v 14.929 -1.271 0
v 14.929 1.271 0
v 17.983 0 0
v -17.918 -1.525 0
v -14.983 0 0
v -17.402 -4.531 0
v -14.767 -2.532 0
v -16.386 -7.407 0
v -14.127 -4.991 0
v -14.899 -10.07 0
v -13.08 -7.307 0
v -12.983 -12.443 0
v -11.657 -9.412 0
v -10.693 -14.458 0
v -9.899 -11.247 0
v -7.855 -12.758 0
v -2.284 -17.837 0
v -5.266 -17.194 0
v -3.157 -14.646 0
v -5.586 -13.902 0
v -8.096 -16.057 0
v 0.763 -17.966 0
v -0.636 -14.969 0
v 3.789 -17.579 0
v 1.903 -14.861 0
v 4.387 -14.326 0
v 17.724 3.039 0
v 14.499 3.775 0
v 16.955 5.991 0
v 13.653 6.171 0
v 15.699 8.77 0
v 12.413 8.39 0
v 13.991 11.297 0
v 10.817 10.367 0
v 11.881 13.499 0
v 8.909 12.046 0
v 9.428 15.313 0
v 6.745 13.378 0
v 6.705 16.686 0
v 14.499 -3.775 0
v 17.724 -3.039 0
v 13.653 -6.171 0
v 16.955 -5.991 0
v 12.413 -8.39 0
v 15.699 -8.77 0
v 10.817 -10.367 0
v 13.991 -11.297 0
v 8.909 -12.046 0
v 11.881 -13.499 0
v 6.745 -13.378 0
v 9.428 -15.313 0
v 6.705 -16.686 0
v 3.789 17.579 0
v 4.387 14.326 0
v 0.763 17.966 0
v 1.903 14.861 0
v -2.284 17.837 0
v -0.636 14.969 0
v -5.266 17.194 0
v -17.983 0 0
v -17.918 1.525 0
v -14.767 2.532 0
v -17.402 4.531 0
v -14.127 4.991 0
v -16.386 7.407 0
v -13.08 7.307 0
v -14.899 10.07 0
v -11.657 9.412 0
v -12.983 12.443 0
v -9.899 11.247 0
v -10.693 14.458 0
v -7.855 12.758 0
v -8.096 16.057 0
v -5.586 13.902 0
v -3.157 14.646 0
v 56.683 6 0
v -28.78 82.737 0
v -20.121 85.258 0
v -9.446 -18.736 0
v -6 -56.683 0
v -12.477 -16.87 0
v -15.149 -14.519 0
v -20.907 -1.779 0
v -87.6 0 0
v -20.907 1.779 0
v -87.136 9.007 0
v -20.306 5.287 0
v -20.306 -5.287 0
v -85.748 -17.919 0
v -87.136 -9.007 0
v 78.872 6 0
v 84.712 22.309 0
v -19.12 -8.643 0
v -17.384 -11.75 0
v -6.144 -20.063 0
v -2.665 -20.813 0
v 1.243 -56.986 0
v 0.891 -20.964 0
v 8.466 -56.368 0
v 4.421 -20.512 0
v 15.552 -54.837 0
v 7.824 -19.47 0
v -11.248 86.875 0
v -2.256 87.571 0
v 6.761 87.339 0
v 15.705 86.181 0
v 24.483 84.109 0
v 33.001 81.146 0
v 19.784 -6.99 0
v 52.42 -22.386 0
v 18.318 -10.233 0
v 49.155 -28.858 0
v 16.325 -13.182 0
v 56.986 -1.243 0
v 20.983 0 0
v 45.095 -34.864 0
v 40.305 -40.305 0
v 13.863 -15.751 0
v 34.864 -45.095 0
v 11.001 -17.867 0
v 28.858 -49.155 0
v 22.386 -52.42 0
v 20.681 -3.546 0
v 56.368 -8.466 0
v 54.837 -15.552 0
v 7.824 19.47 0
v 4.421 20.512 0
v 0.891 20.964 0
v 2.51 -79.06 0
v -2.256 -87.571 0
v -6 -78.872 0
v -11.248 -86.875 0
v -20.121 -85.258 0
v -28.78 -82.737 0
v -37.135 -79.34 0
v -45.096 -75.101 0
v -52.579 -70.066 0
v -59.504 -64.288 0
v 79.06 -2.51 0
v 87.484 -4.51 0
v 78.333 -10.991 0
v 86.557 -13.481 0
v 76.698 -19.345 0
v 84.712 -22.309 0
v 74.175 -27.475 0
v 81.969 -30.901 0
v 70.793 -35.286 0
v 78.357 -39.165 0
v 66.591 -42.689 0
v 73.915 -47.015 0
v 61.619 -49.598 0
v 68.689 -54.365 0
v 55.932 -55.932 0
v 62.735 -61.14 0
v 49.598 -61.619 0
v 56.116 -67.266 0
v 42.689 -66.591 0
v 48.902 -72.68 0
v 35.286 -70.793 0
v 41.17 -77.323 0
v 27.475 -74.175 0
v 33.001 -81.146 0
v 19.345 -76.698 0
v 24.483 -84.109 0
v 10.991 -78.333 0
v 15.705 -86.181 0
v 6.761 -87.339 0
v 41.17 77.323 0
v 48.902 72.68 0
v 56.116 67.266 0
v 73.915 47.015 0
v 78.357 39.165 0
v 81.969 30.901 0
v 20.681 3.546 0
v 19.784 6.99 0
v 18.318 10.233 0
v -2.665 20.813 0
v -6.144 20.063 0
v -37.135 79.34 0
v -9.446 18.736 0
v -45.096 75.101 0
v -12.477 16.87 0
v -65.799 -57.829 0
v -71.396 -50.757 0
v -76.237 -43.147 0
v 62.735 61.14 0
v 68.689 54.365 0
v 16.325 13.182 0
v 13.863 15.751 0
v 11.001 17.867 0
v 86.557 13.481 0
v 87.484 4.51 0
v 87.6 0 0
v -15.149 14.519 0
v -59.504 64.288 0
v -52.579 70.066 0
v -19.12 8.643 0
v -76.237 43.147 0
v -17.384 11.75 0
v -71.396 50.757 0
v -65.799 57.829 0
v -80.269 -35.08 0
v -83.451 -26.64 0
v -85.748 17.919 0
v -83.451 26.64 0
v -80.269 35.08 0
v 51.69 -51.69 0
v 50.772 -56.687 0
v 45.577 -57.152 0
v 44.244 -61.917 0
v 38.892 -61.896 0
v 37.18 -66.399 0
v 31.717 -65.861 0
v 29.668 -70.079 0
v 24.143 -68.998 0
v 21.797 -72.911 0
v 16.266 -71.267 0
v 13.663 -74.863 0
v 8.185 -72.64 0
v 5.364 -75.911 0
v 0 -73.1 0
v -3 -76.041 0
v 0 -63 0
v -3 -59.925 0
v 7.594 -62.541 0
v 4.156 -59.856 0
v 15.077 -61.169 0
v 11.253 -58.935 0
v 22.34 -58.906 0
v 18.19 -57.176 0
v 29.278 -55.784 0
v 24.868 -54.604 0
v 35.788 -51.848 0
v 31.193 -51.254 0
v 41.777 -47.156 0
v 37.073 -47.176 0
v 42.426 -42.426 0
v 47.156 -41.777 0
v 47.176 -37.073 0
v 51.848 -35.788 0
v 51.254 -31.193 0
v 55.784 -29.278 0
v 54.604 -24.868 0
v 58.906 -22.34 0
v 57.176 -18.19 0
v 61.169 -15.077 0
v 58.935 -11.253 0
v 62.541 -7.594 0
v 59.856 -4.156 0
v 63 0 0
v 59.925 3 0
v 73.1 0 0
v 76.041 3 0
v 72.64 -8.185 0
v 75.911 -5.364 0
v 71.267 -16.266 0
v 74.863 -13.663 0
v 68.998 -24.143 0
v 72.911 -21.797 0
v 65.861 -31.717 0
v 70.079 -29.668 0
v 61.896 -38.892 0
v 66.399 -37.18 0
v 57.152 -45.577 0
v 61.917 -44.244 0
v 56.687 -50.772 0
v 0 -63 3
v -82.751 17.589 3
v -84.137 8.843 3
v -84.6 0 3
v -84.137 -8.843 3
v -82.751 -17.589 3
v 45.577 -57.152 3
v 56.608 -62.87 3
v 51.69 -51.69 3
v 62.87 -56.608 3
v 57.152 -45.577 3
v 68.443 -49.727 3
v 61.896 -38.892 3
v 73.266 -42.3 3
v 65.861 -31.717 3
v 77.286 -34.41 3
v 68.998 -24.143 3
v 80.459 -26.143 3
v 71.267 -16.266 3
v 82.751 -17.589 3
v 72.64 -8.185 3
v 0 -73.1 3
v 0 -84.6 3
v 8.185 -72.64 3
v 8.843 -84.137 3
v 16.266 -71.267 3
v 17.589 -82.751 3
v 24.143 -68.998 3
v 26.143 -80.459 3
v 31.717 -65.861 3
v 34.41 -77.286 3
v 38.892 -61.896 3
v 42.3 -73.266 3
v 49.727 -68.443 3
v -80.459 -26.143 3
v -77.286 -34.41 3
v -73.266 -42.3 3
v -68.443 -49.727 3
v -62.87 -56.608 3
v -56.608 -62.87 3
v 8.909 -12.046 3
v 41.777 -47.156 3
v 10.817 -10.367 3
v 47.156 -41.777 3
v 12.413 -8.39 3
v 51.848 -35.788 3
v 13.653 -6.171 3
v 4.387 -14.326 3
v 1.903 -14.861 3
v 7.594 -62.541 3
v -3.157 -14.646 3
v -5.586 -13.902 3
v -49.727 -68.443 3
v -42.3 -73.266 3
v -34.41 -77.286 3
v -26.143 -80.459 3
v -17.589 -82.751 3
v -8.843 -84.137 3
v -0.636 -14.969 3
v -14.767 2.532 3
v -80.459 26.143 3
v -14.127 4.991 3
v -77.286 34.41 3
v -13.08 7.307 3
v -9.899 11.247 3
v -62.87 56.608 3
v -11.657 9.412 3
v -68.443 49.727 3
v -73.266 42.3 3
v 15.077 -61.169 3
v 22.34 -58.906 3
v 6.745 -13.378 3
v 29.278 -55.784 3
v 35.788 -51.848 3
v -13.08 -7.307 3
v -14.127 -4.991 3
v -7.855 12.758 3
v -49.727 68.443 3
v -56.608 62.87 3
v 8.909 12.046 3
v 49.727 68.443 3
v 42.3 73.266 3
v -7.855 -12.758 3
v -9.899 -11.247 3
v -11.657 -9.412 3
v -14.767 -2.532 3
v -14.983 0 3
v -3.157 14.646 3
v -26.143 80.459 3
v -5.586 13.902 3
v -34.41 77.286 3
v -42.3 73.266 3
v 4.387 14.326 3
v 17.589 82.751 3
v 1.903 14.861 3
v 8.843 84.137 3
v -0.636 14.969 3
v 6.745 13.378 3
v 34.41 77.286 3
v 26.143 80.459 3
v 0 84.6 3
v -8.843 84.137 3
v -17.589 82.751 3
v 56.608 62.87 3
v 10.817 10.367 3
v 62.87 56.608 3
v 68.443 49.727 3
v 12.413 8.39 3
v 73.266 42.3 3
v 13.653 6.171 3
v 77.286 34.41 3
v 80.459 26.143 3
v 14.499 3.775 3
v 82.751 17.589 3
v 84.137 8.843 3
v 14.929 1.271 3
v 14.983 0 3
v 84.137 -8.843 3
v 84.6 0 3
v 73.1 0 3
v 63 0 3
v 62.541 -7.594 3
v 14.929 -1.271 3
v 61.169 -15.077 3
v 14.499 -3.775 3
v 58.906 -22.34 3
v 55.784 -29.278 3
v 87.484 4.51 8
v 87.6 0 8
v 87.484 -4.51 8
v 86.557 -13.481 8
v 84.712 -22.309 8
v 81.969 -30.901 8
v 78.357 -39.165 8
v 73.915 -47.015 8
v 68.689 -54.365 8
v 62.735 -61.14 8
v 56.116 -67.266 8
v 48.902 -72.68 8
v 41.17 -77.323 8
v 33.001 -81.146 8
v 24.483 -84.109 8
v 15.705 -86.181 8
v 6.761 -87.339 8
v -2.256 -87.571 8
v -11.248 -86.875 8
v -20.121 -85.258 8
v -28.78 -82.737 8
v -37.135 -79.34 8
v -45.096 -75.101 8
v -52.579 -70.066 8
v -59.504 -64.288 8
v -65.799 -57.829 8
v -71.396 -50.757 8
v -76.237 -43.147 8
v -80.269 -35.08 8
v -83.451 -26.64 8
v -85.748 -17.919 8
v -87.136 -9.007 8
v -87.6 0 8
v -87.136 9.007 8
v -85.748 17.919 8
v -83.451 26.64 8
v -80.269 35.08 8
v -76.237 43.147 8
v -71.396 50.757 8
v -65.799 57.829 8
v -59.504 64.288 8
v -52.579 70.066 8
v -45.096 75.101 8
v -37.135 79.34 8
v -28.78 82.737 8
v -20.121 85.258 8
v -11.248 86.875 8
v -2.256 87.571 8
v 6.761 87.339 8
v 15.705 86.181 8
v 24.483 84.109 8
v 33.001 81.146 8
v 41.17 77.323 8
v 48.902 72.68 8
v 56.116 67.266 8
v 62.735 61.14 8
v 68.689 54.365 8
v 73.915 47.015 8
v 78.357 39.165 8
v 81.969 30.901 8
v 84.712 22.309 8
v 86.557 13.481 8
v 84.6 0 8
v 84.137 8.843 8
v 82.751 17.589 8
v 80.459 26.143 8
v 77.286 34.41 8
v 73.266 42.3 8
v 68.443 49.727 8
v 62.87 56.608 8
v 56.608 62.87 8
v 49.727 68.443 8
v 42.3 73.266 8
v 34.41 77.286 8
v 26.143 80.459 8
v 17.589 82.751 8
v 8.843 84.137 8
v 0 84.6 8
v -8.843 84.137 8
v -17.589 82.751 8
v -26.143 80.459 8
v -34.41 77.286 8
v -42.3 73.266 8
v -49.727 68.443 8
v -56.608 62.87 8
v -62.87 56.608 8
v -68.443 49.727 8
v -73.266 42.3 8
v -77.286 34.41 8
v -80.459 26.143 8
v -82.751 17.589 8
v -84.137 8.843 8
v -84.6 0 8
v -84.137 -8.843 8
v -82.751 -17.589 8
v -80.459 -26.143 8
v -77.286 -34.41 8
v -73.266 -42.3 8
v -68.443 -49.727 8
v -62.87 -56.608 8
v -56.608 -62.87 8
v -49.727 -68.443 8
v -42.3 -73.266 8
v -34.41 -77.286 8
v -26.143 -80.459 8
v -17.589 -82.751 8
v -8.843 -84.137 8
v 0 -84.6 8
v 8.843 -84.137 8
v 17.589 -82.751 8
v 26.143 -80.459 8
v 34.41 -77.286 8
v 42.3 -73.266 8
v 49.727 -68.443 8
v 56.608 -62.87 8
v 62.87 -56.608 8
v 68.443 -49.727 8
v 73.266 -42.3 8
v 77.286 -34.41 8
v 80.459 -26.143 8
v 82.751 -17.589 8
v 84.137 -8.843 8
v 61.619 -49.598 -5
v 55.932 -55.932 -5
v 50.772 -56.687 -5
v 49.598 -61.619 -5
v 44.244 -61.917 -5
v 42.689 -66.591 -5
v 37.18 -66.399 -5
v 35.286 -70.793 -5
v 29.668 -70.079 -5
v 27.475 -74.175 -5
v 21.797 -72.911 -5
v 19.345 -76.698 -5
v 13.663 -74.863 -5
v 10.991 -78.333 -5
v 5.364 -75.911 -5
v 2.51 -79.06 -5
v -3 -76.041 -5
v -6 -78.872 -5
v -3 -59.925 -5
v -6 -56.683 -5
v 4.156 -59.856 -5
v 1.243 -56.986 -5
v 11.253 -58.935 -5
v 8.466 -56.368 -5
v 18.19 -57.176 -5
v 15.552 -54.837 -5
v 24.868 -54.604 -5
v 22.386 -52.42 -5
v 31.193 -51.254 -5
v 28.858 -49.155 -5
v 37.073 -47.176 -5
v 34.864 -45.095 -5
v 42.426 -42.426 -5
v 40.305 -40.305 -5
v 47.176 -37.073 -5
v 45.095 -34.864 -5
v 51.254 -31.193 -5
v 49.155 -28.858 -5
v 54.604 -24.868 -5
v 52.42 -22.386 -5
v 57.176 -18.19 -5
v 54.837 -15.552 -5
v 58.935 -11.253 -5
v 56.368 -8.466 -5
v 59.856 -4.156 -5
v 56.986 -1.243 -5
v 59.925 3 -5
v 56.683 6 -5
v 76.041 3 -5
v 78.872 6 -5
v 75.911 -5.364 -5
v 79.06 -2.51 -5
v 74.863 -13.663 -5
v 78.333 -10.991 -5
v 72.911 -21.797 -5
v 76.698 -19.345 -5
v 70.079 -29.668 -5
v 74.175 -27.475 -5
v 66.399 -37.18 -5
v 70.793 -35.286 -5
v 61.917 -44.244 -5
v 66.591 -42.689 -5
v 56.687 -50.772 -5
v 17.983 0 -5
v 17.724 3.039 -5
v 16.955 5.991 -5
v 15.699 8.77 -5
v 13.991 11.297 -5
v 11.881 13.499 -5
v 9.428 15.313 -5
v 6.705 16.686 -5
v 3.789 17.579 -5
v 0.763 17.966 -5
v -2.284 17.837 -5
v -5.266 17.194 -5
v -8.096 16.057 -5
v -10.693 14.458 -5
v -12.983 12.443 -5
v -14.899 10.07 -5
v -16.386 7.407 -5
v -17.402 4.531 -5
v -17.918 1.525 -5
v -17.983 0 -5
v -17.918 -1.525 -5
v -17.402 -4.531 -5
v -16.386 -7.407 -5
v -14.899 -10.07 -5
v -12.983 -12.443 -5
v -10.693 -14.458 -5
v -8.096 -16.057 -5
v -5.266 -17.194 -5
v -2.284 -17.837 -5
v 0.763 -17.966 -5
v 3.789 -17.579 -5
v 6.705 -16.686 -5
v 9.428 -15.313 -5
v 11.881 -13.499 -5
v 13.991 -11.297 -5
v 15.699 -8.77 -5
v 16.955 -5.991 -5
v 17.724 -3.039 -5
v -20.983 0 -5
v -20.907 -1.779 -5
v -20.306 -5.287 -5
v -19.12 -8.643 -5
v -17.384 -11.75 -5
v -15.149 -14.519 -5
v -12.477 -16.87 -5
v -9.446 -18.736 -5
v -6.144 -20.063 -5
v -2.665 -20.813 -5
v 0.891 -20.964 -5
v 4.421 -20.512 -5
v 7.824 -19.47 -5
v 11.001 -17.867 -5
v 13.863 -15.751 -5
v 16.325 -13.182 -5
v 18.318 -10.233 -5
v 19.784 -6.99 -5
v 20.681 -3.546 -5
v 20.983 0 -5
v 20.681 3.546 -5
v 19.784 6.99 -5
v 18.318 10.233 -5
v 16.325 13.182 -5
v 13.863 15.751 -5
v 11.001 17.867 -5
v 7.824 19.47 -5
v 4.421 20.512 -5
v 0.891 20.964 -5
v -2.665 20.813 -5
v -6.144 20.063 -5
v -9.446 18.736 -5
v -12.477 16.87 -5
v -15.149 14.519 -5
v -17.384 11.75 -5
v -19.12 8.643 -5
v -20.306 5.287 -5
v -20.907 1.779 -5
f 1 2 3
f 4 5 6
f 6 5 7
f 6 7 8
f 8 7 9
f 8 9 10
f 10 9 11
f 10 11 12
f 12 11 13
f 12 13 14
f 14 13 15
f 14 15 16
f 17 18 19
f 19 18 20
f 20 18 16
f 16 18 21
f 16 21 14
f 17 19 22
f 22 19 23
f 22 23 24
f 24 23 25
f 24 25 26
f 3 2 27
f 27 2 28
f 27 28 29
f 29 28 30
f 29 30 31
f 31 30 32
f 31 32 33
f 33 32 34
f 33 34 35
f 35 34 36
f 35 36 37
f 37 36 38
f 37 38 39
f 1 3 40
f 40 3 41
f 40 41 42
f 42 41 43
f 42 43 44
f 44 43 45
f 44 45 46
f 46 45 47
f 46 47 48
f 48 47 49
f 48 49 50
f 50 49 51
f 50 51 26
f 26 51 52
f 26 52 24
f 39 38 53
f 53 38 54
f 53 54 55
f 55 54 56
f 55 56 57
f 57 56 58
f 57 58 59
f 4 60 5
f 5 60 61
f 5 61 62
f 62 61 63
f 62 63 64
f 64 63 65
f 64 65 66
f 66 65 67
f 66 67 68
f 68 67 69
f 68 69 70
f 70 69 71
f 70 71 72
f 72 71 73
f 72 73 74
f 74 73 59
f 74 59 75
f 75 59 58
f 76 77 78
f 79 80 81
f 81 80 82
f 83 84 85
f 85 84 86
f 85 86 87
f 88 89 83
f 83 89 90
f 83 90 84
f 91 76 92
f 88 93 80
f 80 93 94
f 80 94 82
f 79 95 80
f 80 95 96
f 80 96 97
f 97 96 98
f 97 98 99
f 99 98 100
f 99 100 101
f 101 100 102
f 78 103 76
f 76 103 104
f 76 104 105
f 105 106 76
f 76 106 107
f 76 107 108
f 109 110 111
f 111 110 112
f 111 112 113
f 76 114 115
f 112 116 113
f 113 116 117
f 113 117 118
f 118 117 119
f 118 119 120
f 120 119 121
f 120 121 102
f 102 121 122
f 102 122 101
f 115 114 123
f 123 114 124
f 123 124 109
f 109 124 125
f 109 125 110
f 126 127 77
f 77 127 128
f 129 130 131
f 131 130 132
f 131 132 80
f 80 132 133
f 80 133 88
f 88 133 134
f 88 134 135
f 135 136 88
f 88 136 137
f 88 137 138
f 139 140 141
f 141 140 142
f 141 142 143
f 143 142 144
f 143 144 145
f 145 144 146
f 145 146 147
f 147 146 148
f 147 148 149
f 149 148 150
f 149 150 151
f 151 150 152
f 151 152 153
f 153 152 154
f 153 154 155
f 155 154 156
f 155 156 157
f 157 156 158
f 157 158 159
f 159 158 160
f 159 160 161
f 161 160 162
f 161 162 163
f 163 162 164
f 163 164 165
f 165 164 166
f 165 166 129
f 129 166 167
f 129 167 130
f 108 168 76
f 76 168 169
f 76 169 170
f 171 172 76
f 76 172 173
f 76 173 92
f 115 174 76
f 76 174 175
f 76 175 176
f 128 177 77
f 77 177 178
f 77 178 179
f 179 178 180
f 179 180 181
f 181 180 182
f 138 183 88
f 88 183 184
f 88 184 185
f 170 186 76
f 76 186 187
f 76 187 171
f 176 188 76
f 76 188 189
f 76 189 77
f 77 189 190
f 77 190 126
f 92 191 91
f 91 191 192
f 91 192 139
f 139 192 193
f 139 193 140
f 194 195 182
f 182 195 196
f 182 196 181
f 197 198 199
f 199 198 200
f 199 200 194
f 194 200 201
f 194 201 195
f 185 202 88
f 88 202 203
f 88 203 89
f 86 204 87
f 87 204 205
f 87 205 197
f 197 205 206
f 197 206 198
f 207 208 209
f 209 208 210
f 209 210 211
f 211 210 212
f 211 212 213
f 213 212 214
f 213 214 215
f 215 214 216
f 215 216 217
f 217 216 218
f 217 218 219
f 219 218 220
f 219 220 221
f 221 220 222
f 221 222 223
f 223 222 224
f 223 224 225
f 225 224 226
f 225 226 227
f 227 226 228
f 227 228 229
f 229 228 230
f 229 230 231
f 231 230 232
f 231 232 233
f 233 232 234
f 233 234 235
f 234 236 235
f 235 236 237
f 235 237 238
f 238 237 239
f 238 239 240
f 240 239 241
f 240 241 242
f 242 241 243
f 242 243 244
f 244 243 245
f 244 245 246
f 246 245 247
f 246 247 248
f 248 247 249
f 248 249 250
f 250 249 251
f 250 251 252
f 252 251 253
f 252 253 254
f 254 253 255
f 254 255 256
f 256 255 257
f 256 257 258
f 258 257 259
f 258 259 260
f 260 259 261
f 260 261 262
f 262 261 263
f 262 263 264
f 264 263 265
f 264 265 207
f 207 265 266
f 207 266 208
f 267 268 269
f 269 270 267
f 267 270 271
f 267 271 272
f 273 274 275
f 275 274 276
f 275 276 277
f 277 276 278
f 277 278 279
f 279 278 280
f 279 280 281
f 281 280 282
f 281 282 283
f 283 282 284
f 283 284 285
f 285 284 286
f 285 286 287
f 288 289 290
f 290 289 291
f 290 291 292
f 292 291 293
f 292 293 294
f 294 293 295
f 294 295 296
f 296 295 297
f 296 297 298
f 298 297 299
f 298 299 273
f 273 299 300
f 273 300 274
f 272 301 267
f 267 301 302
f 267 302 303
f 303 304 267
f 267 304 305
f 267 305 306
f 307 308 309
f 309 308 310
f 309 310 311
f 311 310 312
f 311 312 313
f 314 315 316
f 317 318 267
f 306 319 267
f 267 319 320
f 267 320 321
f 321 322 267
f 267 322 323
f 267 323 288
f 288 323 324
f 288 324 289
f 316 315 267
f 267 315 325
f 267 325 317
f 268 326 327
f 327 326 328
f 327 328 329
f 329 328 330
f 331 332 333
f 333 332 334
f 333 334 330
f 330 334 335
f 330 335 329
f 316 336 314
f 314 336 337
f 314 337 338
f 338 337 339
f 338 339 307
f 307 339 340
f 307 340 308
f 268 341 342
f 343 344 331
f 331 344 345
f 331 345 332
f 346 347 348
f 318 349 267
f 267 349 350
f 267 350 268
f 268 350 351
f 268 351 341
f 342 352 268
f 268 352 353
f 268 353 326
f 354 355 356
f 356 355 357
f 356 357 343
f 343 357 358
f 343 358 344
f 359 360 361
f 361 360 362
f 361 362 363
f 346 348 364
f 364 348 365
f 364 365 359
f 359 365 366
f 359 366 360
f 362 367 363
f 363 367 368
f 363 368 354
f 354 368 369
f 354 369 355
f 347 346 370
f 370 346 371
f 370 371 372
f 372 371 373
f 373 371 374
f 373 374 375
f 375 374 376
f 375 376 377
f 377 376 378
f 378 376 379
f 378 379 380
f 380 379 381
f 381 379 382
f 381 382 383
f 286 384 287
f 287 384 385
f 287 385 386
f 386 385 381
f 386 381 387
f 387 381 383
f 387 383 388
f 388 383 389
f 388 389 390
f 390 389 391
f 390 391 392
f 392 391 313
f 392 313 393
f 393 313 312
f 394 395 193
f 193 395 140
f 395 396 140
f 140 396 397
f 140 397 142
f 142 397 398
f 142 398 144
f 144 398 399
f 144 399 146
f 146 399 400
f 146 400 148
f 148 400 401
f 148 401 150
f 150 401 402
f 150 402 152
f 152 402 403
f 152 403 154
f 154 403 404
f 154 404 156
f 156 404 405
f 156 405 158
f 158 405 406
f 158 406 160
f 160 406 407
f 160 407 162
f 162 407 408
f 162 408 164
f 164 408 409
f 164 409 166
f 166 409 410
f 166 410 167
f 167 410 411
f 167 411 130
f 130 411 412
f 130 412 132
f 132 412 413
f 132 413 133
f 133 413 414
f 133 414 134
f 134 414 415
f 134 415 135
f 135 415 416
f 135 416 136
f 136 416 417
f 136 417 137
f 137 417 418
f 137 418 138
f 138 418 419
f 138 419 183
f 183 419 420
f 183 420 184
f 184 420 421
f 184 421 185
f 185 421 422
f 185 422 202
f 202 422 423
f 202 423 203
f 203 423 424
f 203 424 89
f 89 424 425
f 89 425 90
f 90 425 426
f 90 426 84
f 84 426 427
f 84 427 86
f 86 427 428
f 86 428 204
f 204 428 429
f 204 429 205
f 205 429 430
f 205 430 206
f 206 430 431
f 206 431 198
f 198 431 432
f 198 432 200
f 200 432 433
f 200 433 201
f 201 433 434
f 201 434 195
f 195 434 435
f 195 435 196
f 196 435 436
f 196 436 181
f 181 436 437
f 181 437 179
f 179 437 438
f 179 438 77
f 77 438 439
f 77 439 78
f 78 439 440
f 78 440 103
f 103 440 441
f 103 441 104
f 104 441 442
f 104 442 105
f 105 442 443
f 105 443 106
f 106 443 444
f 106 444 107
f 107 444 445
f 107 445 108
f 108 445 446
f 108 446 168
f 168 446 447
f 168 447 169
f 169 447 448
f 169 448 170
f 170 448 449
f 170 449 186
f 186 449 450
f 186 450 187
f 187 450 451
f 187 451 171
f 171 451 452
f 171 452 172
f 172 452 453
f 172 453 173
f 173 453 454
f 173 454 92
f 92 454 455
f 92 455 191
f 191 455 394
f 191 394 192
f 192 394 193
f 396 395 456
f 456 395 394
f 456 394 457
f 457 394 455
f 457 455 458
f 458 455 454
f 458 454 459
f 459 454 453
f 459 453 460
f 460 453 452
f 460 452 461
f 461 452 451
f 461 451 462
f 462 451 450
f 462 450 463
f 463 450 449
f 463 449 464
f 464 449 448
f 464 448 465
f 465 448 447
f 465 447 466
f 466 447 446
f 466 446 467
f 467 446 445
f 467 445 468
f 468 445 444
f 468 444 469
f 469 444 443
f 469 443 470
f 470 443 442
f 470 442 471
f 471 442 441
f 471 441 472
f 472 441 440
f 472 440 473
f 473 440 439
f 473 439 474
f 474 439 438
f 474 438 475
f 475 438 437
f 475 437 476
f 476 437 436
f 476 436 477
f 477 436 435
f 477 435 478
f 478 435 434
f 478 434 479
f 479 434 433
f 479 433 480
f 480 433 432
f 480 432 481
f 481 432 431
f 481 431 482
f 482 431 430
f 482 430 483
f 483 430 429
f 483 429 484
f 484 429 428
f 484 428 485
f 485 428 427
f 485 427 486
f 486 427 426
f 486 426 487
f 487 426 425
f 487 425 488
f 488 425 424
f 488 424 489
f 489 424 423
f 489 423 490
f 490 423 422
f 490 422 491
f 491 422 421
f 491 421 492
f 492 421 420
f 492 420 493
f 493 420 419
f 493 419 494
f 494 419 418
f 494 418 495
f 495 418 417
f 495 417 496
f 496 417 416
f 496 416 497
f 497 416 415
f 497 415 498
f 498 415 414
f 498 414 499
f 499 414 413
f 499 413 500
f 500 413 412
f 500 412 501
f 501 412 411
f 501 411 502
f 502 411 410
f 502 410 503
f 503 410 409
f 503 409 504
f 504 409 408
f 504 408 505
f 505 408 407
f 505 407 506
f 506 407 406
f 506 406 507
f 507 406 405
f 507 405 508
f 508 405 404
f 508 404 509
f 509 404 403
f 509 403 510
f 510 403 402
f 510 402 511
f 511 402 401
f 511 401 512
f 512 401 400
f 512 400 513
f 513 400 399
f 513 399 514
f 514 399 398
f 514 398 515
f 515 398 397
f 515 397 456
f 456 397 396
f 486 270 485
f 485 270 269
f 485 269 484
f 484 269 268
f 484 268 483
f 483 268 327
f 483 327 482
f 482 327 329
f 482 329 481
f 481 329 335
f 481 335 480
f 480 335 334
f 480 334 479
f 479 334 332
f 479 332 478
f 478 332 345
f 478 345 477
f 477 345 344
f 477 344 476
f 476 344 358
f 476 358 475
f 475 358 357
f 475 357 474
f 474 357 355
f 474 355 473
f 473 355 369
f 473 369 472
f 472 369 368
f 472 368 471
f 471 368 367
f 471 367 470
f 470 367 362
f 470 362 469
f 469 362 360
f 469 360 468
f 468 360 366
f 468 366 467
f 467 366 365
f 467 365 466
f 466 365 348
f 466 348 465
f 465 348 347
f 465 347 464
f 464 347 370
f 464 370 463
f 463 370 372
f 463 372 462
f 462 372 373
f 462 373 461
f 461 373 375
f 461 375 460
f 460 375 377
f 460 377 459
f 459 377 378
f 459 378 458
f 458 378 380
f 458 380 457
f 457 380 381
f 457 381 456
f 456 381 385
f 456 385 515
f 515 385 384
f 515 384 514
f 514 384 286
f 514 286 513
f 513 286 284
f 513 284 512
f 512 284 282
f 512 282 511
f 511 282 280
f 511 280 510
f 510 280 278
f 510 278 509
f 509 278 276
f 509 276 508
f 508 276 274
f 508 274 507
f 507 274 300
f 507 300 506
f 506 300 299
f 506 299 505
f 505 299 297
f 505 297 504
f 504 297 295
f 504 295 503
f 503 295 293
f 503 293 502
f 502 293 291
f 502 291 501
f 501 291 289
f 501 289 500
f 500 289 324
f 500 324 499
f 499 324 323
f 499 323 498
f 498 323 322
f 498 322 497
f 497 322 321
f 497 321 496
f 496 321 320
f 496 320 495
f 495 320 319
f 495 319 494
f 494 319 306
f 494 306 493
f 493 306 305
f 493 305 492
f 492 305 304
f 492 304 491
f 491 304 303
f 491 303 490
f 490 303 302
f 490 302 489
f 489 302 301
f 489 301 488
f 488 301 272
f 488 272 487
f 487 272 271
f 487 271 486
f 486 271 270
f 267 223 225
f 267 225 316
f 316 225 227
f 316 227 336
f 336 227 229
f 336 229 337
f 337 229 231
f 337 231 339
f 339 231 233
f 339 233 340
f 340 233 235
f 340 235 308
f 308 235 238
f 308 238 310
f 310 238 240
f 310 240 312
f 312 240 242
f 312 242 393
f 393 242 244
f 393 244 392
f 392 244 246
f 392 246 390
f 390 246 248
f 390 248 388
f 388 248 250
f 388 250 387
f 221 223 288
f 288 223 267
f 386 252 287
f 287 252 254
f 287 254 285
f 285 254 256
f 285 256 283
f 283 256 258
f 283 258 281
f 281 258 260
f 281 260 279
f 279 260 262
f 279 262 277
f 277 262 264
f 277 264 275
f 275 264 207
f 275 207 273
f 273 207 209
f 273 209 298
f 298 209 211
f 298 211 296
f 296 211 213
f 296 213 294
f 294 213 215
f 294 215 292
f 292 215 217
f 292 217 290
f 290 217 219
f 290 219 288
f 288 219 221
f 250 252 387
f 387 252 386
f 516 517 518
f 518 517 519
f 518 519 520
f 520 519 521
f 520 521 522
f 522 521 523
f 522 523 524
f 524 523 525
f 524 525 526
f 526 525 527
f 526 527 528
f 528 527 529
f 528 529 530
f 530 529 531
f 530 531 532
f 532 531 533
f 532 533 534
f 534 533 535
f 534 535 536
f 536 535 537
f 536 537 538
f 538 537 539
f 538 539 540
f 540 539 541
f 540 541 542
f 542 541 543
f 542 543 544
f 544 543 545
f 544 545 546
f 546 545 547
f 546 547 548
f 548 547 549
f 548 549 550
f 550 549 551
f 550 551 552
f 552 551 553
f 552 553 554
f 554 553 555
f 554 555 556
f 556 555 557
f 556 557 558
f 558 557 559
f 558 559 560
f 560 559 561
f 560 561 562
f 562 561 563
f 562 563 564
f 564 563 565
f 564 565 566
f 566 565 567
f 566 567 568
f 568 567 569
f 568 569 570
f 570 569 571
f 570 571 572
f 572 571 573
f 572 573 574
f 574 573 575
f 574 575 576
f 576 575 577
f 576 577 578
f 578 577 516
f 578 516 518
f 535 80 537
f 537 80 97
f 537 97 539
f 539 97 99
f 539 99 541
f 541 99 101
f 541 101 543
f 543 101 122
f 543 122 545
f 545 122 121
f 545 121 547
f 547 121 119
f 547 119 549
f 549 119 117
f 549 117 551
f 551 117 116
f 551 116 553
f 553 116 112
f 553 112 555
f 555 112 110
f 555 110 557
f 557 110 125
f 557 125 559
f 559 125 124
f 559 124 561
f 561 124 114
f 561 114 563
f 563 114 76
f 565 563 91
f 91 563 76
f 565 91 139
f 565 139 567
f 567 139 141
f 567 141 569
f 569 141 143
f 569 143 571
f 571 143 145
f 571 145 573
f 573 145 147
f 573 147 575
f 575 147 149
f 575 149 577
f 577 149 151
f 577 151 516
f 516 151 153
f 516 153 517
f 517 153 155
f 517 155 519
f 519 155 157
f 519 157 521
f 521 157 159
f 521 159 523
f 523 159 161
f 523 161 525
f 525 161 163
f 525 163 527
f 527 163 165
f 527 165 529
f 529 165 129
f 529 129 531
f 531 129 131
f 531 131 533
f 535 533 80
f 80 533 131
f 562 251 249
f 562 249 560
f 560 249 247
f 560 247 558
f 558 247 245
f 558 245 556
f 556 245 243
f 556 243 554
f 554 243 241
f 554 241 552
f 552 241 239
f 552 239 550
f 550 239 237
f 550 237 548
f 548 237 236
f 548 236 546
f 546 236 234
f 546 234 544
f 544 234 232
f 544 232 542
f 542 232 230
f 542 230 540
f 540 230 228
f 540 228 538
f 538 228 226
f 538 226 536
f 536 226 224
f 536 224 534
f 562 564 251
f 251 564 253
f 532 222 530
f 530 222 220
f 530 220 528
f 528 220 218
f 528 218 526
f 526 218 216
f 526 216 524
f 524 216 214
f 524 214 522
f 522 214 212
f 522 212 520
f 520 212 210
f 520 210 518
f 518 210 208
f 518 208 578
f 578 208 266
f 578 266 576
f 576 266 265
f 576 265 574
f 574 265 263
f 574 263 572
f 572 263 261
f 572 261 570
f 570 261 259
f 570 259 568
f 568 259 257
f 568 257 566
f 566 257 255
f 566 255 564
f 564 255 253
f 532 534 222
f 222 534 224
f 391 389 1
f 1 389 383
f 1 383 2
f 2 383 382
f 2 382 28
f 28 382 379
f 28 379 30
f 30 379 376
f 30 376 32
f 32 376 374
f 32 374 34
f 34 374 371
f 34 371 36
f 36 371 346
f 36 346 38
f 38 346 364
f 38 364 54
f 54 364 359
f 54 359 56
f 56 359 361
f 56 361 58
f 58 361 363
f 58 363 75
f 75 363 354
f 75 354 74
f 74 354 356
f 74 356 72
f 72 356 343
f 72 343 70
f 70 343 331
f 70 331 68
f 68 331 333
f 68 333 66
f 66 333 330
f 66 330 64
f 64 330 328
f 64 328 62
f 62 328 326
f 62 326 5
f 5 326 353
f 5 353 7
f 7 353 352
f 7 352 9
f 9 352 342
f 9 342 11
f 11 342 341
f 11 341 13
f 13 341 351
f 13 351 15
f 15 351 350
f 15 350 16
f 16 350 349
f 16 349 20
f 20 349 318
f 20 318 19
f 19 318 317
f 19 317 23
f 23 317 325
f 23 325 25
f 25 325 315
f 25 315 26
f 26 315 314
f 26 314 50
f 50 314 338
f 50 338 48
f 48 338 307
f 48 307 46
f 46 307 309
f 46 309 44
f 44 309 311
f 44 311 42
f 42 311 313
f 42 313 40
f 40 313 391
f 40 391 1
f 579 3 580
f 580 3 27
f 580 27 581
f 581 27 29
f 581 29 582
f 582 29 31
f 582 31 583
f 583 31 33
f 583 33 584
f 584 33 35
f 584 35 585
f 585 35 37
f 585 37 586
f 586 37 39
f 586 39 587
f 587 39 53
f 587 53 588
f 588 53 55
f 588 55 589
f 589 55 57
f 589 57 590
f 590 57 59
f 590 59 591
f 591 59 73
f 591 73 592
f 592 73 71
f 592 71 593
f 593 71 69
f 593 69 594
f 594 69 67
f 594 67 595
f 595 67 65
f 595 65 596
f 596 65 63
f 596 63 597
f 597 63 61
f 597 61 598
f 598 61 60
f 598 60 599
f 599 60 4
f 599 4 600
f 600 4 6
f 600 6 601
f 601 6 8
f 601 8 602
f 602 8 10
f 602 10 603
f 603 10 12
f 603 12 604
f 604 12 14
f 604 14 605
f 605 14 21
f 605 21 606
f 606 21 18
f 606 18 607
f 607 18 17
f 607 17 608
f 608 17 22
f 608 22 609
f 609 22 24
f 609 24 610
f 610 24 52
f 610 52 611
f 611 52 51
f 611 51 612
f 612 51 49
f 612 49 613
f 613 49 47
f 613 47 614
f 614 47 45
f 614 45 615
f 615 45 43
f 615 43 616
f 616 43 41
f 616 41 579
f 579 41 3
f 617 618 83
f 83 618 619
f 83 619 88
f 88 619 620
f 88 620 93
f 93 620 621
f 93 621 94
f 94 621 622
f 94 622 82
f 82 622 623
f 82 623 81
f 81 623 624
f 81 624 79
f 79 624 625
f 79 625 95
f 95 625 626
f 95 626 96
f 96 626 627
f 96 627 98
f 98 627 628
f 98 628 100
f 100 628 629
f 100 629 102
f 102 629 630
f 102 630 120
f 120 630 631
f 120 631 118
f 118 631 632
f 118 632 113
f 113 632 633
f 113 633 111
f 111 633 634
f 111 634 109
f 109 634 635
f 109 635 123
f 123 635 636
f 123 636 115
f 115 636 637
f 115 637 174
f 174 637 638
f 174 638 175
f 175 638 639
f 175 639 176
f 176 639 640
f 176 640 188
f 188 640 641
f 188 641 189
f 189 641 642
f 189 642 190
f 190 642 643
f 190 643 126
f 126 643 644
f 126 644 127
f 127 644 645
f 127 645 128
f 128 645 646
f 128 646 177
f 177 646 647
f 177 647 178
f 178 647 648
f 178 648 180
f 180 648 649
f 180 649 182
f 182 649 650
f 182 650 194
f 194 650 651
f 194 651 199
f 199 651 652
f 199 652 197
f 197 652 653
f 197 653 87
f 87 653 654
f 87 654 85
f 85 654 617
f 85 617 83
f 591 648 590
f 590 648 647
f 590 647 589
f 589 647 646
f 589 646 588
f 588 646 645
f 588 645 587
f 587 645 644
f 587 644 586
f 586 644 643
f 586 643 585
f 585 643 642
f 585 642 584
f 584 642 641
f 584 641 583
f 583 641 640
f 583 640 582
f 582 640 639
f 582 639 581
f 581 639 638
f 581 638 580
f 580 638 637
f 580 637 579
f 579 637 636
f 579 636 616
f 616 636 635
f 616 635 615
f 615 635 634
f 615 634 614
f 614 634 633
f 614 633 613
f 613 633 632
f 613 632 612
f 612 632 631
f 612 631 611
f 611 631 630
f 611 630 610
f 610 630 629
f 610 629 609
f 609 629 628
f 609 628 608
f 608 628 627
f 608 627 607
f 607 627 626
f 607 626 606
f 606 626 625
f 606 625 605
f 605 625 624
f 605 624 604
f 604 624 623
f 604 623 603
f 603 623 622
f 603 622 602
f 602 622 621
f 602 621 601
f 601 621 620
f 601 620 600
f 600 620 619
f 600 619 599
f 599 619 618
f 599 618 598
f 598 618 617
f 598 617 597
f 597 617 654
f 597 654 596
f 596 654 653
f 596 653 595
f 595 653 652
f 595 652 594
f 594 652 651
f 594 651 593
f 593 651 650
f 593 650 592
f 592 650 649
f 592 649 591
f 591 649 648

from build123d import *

# Parameters (mm, degrees)
SKETCH_1_R          = 87.6
EXTRUDE_1_DEPTH     = 3
SKETCH_3_R          = 87.6
SKETCH_3_R_2        = 84.6
EXTRUDE_2_DEPTH     = 5
CUT_EXTRUDE_1_DEPTH = 5
EXTRUDE_3_DEPTH     = 5
SKETCH_6_R          = 14.982595121
CUT_EXTRUDE_2_DEPTH = 5
SKETCH_7_R          = 20.982595121
SKETCH_7_R_2        = 17.982595121
EXTRUDE_4_DEPTH     = 5


with BuildPart() as part:
    # 스케치1 → 보스-돌출1 (new body)
    with BuildSketch(Plane.XY):
        Circle(SKETCH_1_R)
    extrude(amount=EXTRUDE_1_DEPTH)

    # 스케치3 → 보스-돌출2 (add)
    with BuildSketch(Plane.XY.offset(3)):
        Circle(SKETCH_3_R)
        Circle(SKETCH_3_R_2, mode=Mode.SUBTRACT)
    extrude(amount=EXTRUDE_2_DEPTH)

    # 스케치4 → 컷-돌출1 (cut)
    with BuildSketch(Plane(origin=(0, 0, 0), x_dir=(-1, 0, 0), z_dir=(0, 0, -1))):
        with BuildLine():
            Line((-63, 0), (-73.1, 0))
            ThreePointArc((-73.1, 0), (-51.689505705, -51.689505705), (0, -73.1))
            Line((0, -73.1), (0, -63))
            ThreePointArc((0, -63), (-44.547727215, -44.547727215), (-63, 0))
        make_face()
    extrude(amount=-CUT_EXTRUDE_1_DEPTH, mode=Mode.SUBTRACT)

    # 스케치5 → 보스-돌출3 (add)
    with BuildSketch(Plane(origin=(0, 0, 0), x_dir=(-1, 0, 0), z_dir=(0, 0, -1))):
        with BuildLine():
            Line((6, -78.872111675), (6, -56.683330883))
            ThreePointArc((6, -56.683330883), (-40.305086528, -40.305086528), (-56.683330883, 6))
            Line((-56.683330883, 6), (-78.872111675, 6))
            ThreePointArc((-78.872111675, 6), (-55.932146392, -55.932146392), (6, -78.872111675))
        make_face()
        with BuildLine():
            Line((-59.924953066, 3), (-76.040844288, 3))
            ThreePointArc((-76.040844288, 3), (-53.810826048, -53.810826048), (3, -76.040844288))
            Line((3, -76.040844288), (3, -59.924953066))
            ThreePointArc((3, -59.924953066), (-42.426406871, -42.426406871), (-59.924953066, 3))
        make_face(mode=Mode.SUBTRACT)
    extrude(amount=EXTRUDE_3_DEPTH)

    # 스케치6 → 컷-돌출2 (cut)
    with BuildSketch(Plane(origin=(0, 0, 0), x_dir=(-1, 0, 0), z_dir=(0, 0, -1))):
        Circle(SKETCH_6_R)
    extrude(amount=-CUT_EXTRUDE_2_DEPTH, mode=Mode.SUBTRACT)

    # 스케치7 → 보스-돌출4 (add)
    with BuildSketch(Plane(origin=(0, 0, 0), x_dir=(-1, 0, 0), z_dir=(0, 0, -1))):
        with Locations(Location((0, 0, 0), (0, 0, 180))):
            Circle(SKETCH_7_R)
        Circle(SKETCH_7_R_2, mode=Mode.SUBTRACT)
    extrude(amount=EXTRUDE_4_DEPTH)


solid = part.part
